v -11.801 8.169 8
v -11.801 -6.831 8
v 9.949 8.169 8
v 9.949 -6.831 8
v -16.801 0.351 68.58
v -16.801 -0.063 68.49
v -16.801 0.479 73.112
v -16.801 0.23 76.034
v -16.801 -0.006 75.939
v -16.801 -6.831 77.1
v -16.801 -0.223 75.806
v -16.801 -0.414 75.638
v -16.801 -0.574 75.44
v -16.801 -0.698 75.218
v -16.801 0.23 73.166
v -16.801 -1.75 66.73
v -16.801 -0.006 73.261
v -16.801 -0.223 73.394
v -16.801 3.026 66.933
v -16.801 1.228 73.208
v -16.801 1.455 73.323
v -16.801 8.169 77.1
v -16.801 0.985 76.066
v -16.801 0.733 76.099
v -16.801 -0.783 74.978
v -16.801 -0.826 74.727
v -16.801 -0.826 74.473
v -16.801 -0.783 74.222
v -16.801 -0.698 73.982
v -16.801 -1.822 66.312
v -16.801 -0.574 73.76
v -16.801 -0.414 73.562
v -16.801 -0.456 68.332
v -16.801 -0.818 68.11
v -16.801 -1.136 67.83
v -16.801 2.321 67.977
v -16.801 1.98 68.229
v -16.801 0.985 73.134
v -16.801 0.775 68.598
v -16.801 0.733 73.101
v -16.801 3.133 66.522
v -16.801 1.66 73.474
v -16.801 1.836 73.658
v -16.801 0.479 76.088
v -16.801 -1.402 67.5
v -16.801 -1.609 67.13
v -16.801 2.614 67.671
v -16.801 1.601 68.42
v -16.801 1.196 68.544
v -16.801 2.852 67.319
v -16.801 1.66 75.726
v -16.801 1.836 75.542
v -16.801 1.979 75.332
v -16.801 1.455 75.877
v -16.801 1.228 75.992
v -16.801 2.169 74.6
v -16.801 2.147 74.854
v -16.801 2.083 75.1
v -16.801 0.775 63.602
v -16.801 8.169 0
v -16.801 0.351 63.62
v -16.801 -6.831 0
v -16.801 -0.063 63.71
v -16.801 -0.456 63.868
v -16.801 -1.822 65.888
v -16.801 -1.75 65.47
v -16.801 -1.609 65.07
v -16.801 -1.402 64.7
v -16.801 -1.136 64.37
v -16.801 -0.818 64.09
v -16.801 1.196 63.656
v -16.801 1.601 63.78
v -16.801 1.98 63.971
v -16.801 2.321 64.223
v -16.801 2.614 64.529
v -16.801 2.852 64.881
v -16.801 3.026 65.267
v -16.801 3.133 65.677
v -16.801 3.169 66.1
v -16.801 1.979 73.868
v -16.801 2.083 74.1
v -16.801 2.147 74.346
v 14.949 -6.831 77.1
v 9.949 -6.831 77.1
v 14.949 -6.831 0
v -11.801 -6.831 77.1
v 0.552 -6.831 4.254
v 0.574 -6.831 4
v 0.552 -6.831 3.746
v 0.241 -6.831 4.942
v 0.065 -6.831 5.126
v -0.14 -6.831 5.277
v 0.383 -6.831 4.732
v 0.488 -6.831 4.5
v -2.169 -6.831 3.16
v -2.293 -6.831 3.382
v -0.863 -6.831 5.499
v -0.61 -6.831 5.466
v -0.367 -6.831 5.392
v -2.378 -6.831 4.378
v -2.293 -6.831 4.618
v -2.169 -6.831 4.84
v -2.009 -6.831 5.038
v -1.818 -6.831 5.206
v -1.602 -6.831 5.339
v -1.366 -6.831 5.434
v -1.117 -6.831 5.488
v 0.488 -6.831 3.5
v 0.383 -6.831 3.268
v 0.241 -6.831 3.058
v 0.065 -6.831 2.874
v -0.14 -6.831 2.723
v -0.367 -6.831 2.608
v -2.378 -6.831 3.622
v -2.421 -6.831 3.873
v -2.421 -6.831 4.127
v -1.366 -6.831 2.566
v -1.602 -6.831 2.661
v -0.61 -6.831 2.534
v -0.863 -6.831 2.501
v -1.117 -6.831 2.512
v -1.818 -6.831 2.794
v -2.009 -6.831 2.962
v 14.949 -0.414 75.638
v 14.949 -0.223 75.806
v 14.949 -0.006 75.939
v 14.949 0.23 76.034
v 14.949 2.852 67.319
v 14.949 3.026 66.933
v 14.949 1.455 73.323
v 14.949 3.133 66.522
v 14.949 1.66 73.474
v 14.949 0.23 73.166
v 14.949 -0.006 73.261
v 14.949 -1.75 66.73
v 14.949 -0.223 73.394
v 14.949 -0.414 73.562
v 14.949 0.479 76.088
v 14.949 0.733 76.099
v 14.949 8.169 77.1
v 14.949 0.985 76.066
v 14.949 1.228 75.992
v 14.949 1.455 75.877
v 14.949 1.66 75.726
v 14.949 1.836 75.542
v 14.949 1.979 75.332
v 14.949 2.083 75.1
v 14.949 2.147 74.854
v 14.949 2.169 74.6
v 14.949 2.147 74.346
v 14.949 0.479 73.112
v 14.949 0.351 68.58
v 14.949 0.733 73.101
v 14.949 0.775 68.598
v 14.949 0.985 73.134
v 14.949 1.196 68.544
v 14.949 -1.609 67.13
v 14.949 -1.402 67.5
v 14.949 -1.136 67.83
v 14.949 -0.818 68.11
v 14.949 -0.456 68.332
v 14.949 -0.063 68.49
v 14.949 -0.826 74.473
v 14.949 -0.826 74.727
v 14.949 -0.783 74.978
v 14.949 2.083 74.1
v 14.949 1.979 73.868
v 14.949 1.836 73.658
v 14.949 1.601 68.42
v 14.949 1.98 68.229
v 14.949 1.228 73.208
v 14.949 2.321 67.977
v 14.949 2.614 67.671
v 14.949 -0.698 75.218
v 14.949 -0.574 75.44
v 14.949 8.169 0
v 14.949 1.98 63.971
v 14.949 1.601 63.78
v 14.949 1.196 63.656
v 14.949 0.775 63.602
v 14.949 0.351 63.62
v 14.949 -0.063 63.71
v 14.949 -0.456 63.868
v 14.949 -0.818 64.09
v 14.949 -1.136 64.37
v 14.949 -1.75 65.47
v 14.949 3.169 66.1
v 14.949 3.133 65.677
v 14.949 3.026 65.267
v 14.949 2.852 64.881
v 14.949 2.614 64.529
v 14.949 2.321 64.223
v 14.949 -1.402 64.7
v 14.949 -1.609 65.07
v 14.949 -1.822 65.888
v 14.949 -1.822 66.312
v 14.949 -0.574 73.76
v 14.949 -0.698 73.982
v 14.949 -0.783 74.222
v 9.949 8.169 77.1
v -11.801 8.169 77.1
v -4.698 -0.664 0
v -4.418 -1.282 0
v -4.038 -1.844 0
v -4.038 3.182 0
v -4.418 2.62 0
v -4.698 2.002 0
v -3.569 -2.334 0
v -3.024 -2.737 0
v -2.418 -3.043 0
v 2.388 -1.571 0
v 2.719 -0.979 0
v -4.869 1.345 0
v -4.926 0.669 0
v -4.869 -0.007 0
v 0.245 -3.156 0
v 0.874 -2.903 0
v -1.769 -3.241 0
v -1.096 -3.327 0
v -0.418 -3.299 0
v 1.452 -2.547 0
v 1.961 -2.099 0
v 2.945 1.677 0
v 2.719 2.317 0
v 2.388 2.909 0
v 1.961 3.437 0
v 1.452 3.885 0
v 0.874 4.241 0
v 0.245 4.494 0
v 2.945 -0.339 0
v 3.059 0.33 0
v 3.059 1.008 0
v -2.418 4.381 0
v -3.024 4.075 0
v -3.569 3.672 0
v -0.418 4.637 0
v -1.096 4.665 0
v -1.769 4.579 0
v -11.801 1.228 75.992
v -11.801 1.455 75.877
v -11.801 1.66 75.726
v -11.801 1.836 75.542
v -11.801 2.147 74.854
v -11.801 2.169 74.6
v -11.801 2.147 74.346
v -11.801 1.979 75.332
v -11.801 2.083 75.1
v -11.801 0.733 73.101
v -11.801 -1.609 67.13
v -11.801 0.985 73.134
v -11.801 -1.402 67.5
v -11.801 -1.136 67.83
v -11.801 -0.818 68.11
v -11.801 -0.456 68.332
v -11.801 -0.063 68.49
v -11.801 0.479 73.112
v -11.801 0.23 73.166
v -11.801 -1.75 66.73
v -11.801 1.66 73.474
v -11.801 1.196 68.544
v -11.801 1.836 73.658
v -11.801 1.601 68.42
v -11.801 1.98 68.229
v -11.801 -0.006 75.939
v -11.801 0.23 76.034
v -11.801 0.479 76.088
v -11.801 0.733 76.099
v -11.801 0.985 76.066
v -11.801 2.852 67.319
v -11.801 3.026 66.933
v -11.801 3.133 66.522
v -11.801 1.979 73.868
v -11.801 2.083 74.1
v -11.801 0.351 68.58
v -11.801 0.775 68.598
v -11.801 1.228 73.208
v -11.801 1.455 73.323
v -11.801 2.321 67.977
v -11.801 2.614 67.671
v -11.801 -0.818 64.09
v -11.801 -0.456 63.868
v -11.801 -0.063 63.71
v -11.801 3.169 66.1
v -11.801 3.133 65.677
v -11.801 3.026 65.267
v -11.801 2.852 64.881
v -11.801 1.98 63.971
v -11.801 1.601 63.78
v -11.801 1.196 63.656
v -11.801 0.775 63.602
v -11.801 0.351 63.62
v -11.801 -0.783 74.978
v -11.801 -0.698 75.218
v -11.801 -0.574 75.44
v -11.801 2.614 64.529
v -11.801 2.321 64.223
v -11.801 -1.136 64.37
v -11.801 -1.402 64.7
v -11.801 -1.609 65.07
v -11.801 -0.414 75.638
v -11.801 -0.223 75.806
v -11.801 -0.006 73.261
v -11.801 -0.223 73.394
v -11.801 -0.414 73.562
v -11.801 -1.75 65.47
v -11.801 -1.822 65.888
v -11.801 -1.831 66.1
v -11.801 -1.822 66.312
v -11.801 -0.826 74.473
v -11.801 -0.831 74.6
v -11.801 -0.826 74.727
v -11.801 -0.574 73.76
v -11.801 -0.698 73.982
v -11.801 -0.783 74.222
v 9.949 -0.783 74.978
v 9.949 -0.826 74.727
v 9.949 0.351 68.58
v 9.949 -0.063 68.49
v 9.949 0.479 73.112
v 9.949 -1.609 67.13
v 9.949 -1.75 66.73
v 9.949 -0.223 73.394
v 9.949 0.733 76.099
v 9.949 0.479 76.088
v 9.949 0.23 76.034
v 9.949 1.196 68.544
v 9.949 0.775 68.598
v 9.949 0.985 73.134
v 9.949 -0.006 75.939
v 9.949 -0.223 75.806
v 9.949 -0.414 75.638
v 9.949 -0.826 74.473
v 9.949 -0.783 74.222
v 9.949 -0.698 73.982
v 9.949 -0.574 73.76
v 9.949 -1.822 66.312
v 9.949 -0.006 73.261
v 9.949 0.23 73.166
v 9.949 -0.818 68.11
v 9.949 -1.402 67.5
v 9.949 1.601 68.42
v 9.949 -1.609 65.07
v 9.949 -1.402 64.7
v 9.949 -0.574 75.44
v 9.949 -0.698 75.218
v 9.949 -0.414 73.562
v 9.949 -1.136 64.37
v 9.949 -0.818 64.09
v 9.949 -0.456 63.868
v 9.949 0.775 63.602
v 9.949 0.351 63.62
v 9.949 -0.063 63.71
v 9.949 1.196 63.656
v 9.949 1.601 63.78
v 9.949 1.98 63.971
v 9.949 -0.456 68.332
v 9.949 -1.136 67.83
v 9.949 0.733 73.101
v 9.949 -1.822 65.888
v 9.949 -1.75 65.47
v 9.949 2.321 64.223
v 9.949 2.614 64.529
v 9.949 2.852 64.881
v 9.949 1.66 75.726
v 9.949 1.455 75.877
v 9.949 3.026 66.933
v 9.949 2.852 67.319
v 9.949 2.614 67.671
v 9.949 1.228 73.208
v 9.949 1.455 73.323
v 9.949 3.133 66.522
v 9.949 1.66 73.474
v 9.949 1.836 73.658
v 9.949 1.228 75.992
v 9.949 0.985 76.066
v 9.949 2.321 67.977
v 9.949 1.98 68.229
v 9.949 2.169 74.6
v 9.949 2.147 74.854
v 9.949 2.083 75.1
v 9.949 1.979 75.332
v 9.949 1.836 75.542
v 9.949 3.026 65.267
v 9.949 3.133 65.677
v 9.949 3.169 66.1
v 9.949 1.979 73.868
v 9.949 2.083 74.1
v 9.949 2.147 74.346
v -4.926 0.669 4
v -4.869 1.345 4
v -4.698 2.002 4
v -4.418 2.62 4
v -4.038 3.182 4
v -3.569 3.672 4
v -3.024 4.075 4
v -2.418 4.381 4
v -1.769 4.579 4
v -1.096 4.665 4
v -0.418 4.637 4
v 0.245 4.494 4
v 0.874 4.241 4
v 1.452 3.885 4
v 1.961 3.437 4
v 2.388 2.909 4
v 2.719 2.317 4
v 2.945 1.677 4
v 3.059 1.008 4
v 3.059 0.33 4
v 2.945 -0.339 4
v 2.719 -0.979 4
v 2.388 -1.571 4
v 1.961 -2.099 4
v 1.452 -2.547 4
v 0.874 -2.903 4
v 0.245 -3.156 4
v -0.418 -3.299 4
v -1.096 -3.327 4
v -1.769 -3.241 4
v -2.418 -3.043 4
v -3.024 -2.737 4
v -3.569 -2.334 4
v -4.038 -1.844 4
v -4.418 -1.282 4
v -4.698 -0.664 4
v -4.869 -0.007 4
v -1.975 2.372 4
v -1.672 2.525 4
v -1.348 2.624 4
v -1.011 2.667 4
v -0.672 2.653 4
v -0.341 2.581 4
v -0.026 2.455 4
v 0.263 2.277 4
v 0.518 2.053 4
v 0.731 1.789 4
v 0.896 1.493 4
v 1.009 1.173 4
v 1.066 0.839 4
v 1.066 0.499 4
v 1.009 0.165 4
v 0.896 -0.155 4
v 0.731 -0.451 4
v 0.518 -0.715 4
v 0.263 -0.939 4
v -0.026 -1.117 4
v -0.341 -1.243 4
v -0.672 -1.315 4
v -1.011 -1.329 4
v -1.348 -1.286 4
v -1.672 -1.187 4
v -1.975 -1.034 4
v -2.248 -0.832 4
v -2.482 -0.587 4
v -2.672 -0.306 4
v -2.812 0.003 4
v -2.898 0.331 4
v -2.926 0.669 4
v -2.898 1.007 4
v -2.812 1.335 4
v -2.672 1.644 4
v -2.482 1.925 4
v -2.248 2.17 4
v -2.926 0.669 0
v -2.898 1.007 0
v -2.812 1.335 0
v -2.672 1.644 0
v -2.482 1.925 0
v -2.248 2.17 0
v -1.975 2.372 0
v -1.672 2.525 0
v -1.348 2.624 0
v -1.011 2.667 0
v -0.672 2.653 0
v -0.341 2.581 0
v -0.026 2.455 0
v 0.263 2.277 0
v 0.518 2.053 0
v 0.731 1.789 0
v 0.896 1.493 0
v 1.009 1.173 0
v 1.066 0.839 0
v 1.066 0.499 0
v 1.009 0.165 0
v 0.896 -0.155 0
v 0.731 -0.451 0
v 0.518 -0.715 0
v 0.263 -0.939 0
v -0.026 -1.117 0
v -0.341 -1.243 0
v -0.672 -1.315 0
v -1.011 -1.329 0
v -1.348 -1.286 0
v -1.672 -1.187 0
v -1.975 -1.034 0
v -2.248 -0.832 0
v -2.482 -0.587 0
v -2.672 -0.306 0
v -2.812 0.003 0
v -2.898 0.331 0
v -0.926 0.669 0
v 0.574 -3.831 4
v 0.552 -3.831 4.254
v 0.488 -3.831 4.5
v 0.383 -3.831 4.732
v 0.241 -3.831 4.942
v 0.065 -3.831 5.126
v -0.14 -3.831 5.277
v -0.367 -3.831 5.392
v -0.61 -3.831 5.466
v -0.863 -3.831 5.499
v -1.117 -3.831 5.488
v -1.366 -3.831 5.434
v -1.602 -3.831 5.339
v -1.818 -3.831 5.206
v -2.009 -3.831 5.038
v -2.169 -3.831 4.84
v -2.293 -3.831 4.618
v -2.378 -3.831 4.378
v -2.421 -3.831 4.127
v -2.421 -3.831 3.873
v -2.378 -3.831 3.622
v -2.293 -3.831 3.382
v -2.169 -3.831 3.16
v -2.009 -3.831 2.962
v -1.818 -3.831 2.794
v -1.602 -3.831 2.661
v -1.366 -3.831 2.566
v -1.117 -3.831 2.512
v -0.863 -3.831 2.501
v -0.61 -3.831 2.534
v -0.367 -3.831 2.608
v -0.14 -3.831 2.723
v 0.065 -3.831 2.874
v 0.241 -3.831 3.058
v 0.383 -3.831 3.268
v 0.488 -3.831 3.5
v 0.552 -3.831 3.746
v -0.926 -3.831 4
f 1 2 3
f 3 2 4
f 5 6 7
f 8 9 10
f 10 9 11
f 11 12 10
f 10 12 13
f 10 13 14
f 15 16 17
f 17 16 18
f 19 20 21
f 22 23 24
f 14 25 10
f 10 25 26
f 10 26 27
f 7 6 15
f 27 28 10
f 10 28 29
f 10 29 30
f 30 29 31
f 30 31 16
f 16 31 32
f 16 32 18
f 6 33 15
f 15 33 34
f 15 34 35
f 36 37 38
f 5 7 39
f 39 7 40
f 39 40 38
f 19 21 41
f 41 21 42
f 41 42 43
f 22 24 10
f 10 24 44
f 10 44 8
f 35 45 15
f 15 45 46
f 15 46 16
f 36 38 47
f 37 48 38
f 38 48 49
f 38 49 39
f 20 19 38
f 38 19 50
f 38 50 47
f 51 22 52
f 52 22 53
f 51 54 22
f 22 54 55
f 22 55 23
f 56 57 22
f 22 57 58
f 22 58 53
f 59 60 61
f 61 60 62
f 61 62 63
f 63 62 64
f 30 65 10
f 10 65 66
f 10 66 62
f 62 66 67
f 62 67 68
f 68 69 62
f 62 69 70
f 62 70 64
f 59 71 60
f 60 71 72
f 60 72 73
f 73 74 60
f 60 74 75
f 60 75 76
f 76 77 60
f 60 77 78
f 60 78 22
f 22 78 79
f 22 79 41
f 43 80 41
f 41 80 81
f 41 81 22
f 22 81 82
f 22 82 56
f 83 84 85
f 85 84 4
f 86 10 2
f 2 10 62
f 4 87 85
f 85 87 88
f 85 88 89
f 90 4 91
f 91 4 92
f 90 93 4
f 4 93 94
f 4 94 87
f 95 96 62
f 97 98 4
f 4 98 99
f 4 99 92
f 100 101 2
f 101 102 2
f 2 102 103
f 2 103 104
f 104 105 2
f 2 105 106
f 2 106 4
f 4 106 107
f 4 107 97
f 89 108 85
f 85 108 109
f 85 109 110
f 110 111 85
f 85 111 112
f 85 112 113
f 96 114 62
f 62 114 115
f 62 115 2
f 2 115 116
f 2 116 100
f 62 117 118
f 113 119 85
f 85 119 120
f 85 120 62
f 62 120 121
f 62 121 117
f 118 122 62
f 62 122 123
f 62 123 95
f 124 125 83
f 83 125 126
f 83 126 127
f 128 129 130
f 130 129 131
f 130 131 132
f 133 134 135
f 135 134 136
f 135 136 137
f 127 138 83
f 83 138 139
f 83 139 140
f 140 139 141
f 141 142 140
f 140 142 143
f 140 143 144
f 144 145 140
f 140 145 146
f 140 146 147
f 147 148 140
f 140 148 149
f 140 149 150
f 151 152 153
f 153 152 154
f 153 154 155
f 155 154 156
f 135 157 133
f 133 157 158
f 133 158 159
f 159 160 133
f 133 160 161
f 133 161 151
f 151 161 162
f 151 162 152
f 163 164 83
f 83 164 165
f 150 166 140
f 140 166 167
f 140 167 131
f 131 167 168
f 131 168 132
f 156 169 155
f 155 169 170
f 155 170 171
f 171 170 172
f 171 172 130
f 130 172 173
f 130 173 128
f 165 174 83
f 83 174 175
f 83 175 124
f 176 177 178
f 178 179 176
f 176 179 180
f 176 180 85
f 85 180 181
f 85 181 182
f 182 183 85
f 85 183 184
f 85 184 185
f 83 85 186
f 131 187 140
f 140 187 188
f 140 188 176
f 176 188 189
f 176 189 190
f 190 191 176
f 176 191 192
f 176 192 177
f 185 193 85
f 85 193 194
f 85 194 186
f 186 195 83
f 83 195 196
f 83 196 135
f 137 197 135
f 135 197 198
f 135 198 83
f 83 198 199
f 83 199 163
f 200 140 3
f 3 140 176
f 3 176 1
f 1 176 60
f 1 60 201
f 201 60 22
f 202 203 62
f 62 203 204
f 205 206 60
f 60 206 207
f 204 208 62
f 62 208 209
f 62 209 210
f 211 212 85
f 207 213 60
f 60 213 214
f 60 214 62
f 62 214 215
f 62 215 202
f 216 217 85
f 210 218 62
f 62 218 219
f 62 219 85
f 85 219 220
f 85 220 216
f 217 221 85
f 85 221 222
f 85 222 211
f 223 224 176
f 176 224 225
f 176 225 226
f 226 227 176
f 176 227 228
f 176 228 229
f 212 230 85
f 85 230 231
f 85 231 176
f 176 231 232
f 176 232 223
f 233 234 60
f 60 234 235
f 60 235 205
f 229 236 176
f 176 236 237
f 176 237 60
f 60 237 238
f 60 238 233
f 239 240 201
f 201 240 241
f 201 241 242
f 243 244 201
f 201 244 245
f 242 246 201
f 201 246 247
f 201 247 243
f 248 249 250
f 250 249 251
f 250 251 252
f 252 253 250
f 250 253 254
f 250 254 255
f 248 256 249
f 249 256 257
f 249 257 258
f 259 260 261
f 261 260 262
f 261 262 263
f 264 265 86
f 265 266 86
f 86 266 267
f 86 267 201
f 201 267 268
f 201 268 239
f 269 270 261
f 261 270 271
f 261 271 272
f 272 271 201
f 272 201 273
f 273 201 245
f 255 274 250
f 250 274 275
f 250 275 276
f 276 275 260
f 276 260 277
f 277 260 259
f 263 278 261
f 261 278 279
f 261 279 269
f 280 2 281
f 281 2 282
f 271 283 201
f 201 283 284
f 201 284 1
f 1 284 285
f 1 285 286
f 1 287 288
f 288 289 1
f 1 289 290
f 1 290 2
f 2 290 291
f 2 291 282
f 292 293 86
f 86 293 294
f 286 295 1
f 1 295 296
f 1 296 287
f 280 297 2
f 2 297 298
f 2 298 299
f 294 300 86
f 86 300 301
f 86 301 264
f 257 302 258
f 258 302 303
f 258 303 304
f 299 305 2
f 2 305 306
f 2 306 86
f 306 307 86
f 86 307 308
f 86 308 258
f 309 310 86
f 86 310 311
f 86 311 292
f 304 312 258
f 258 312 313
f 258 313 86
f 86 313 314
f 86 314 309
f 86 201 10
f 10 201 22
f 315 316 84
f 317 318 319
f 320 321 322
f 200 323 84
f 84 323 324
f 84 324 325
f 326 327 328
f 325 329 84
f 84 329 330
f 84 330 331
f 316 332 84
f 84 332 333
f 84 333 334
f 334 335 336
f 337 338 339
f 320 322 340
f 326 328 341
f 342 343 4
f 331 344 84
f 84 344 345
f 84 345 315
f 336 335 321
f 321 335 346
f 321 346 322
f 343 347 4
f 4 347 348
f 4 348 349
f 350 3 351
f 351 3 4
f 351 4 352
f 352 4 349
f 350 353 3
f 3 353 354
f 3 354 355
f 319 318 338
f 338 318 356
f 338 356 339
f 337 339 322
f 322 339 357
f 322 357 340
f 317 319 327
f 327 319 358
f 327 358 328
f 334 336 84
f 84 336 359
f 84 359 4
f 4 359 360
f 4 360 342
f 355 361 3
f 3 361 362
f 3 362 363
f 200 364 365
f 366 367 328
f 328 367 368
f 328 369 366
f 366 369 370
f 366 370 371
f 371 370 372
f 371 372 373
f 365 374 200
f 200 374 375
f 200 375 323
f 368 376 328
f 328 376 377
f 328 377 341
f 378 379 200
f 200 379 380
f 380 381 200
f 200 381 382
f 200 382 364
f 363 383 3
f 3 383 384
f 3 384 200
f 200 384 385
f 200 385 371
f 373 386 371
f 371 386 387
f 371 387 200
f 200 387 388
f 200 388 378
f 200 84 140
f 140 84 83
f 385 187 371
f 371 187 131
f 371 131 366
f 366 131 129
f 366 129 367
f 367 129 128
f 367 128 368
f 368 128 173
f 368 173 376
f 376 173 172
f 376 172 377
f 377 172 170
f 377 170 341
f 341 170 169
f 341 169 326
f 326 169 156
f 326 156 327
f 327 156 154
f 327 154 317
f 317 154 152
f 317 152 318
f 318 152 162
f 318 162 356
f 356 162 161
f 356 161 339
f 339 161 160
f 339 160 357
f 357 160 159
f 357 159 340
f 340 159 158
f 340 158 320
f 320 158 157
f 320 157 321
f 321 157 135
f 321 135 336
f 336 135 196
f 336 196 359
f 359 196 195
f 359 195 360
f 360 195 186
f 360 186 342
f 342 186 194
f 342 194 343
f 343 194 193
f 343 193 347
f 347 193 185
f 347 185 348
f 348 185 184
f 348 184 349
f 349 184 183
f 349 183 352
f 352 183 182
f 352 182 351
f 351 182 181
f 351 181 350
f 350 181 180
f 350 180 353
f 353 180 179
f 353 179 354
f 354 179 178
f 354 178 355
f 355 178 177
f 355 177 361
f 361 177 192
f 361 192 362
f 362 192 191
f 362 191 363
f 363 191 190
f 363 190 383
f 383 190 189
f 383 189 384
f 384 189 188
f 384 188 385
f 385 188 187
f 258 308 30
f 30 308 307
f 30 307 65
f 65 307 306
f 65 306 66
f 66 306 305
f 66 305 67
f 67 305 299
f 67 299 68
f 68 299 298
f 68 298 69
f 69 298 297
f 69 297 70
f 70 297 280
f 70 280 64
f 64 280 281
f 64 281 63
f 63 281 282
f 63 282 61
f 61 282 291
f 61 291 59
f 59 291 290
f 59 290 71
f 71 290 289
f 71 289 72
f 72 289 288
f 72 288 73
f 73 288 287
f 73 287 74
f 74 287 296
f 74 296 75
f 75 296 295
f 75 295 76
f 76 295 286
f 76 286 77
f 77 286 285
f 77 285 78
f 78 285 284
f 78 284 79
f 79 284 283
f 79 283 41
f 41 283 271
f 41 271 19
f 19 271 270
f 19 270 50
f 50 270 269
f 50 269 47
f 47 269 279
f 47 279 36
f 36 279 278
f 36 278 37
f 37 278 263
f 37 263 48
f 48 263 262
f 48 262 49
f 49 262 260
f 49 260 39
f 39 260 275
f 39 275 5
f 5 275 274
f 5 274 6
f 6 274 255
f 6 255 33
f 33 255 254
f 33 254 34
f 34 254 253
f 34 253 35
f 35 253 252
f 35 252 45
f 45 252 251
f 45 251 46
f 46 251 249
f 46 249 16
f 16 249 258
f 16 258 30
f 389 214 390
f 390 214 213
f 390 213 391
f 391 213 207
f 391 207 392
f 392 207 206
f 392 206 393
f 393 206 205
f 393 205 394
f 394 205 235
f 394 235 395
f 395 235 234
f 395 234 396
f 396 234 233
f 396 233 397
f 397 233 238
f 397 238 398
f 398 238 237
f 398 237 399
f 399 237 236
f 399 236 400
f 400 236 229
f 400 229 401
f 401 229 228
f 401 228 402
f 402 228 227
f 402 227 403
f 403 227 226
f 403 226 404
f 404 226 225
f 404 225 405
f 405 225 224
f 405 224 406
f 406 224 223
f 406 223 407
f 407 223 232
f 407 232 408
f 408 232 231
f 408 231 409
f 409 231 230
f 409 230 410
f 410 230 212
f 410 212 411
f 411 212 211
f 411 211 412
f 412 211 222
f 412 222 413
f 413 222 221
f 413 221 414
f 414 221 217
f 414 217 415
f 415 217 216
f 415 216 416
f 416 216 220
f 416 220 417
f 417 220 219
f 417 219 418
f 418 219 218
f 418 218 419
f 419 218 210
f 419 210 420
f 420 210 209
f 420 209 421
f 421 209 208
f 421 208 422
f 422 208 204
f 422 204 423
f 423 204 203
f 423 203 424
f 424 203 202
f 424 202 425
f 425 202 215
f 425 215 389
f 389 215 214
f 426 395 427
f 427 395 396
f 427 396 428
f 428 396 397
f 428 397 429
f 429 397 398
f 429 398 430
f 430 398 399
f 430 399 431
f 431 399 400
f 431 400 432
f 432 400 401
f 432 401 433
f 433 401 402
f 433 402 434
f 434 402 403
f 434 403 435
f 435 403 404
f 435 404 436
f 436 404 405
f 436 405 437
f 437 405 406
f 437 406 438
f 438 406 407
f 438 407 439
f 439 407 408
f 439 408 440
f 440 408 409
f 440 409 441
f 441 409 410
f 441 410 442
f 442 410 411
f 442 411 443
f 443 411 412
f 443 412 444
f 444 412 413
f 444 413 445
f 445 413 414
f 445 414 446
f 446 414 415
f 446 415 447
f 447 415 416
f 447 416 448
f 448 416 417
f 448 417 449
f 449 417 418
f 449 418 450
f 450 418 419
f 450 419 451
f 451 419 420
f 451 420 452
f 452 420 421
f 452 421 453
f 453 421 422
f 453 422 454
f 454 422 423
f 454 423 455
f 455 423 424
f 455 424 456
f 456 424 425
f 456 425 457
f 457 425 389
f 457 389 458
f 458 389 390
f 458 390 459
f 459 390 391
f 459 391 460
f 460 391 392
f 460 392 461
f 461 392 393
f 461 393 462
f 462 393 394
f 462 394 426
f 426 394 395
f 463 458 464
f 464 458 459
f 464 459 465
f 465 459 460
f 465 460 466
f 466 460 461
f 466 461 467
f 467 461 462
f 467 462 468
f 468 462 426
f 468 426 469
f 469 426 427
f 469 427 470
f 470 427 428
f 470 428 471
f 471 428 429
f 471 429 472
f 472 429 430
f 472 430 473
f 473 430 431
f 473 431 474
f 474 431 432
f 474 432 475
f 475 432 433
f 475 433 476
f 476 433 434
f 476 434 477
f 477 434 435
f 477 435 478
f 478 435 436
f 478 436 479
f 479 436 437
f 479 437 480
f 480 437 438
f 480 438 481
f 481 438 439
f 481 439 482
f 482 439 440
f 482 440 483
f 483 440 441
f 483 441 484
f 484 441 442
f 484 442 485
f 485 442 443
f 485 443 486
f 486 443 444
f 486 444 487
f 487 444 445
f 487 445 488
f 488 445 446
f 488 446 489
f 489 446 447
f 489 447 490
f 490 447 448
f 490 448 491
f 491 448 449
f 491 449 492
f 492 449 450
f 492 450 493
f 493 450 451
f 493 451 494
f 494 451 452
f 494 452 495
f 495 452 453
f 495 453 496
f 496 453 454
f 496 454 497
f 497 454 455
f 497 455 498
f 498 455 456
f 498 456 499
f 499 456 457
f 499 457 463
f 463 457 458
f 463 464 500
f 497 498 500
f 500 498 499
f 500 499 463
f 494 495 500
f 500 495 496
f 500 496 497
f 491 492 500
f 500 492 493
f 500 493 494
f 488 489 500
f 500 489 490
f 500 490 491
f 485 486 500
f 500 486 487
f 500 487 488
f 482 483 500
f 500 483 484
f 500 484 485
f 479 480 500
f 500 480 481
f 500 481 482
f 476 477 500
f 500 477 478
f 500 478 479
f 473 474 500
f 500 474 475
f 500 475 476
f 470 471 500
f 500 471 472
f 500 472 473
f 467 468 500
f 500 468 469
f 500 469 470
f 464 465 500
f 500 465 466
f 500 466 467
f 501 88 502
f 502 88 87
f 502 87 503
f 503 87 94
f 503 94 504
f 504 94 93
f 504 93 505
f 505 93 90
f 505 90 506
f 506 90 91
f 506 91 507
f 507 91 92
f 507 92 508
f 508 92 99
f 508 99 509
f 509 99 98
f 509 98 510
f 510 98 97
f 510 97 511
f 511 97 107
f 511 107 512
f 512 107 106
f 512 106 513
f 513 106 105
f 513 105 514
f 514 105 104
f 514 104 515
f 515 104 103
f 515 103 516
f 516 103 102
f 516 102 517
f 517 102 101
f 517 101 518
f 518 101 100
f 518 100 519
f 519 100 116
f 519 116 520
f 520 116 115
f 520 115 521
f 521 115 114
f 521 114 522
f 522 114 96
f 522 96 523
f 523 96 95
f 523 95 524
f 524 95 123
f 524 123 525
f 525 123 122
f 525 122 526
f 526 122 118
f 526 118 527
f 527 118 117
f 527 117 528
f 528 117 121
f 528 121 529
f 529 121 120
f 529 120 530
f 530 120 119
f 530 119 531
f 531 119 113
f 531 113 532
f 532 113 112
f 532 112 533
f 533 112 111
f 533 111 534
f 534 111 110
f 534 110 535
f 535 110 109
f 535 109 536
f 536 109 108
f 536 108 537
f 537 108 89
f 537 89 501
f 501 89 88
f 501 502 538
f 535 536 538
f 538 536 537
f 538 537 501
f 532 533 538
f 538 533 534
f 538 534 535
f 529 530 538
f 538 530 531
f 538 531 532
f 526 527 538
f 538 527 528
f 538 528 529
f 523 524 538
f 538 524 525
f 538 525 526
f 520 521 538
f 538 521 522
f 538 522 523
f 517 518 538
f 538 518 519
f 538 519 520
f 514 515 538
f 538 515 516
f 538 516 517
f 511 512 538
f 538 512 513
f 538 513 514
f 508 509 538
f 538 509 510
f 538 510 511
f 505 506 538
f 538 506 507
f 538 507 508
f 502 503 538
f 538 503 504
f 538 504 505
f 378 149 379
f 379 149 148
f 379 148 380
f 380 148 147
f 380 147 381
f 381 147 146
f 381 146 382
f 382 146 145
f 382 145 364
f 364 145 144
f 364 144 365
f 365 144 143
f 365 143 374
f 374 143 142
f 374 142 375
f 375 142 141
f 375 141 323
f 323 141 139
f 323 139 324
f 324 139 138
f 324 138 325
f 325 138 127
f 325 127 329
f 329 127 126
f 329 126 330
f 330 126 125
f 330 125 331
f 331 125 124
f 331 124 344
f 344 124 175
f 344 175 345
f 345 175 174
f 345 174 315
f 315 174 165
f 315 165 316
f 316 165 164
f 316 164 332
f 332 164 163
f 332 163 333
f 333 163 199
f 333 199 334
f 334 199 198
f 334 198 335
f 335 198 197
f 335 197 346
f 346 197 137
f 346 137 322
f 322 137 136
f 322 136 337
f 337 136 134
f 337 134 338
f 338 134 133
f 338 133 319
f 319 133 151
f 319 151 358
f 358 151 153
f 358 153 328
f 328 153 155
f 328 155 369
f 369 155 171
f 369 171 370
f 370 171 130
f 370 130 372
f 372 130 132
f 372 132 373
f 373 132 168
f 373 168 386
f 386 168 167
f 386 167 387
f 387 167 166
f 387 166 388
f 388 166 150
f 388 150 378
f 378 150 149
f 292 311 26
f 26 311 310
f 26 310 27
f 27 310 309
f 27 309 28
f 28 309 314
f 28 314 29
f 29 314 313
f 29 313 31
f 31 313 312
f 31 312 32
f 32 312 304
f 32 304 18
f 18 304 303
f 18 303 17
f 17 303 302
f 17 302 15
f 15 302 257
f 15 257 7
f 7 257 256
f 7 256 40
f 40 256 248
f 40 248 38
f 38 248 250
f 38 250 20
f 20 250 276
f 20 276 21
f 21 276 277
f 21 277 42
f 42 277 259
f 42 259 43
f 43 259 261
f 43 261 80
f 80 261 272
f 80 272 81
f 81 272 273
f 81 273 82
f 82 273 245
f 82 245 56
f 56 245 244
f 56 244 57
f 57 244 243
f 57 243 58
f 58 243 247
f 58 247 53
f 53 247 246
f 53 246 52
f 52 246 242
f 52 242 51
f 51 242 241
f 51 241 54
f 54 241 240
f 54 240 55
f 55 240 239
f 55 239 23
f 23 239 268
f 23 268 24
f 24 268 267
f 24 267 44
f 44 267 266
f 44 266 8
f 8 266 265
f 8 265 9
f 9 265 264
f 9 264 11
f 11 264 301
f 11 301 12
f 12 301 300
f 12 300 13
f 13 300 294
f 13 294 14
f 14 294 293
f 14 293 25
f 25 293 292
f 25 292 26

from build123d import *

# Parameters (mm, degrees)
SKETCH1_W           = 31.75
SKETCH1_H           = 15
BOSS_EXTRUDE1_DEPTH = 8
SKETCH2_W           = 5
SKETCH2_H           = 15
BOSS_EXTRUDE2_DEPTH = 69.1
SKETCH3_R           = 2.5
CUT_EXTRUDE1_DEPTH  = 69.1
SKETCH4_R           = 4
SKETCH4_R_2         = 2
CUT_EXTRUDE3_DEPTH  = 4
SKETCH5_R           = 1.5
CUT_EXTRUDE4_DEPTH  = 3
SKETCH6_R           = 1.5
CUT_EXTRUDE5_DEPTH  = 37


with BuildPart() as part:
    # Sketch1 → Boss-Extrude1 (new body)
    with BuildSketch(Plane.XY):
        with Locations((-0.926352113, 0.669031185)):
            Rectangle(SKETCH1_W, SKETCH1_H)
    extrude(amount=BOSS_EXTRUDE1_DEPTH)

    # Sketch2 → Boss-Extrude2 (add)
    with BuildSketch(Plane.XY.offset(8)):
        with Locations((-14.301352113, 0.669031185)):
            Rectangle(SKETCH2_W, SKETCH2_H)
        with Locations((12.448647887, 0.669031185)):
            Rectangle(SKETCH2_W, SKETCH2_H)
    extrude(amount=BOSS_EXTRUDE2_DEPTH)

    # Sketch3 → Cut-Extrude1 (cut)
    with BuildSketch(Plane(origin=(14.948647887, 0, 0), x_dir=(0, 0, -1), z_dir=(1, 0, 0))):
        with Locations(Location((-66.1, 0.669031185, 0), (0, 0, 90))):
            Circle(SKETCH3_R)
    extrude(amount=-CUT_EXTRUDE1_DEPTH, mode=Mode.SUBTRACT)

    # Sketch4 → Cut-Extrude3 (cut)
    with BuildSketch(Plane(origin=(0, 0, 0), x_dir=(-1, 0, 0), z_dir=(0, 0, -1))):
        with Locations((0.926352113, 0.669031185)):
            Circle(SKETCH4_R)
        with Locations((0.926352113, 0.669031185)):
            Circle(SKETCH4_R_2, mode=Mode.SUBTRACT)
    extrude(amount=-CUT_EXTRUDE3_DEPTH, mode=Mode.SUBTRACT)

    # Sketch5 → Cut-Extrude4 (cut)
    with BuildSketch(Plane.XZ.offset(6.830968815)):
        with Locations((-0.926352113, 4)):
            Circle(SKETCH5_R)
    extrude(amount=-CUT_EXTRUDE4_DEPTH, mode=Mode.SUBTRACT)

    # Sketch6 → Cut-Extrude5 (cut)
    with BuildSketch(Plane(origin=(14.948647887, 0, 0), x_dir=(0, 0, -1), z_dir=(1, 0, 0))):
        with Locations(Location((-74.6, 0.669031185, 0), (0, 0, 90))):
            Circle(SKETCH6_R)
    extrude(amount=-CUT_EXTRUDE5_DEPTH, mode=Mode.SUBTRACT)


solid = part.part
